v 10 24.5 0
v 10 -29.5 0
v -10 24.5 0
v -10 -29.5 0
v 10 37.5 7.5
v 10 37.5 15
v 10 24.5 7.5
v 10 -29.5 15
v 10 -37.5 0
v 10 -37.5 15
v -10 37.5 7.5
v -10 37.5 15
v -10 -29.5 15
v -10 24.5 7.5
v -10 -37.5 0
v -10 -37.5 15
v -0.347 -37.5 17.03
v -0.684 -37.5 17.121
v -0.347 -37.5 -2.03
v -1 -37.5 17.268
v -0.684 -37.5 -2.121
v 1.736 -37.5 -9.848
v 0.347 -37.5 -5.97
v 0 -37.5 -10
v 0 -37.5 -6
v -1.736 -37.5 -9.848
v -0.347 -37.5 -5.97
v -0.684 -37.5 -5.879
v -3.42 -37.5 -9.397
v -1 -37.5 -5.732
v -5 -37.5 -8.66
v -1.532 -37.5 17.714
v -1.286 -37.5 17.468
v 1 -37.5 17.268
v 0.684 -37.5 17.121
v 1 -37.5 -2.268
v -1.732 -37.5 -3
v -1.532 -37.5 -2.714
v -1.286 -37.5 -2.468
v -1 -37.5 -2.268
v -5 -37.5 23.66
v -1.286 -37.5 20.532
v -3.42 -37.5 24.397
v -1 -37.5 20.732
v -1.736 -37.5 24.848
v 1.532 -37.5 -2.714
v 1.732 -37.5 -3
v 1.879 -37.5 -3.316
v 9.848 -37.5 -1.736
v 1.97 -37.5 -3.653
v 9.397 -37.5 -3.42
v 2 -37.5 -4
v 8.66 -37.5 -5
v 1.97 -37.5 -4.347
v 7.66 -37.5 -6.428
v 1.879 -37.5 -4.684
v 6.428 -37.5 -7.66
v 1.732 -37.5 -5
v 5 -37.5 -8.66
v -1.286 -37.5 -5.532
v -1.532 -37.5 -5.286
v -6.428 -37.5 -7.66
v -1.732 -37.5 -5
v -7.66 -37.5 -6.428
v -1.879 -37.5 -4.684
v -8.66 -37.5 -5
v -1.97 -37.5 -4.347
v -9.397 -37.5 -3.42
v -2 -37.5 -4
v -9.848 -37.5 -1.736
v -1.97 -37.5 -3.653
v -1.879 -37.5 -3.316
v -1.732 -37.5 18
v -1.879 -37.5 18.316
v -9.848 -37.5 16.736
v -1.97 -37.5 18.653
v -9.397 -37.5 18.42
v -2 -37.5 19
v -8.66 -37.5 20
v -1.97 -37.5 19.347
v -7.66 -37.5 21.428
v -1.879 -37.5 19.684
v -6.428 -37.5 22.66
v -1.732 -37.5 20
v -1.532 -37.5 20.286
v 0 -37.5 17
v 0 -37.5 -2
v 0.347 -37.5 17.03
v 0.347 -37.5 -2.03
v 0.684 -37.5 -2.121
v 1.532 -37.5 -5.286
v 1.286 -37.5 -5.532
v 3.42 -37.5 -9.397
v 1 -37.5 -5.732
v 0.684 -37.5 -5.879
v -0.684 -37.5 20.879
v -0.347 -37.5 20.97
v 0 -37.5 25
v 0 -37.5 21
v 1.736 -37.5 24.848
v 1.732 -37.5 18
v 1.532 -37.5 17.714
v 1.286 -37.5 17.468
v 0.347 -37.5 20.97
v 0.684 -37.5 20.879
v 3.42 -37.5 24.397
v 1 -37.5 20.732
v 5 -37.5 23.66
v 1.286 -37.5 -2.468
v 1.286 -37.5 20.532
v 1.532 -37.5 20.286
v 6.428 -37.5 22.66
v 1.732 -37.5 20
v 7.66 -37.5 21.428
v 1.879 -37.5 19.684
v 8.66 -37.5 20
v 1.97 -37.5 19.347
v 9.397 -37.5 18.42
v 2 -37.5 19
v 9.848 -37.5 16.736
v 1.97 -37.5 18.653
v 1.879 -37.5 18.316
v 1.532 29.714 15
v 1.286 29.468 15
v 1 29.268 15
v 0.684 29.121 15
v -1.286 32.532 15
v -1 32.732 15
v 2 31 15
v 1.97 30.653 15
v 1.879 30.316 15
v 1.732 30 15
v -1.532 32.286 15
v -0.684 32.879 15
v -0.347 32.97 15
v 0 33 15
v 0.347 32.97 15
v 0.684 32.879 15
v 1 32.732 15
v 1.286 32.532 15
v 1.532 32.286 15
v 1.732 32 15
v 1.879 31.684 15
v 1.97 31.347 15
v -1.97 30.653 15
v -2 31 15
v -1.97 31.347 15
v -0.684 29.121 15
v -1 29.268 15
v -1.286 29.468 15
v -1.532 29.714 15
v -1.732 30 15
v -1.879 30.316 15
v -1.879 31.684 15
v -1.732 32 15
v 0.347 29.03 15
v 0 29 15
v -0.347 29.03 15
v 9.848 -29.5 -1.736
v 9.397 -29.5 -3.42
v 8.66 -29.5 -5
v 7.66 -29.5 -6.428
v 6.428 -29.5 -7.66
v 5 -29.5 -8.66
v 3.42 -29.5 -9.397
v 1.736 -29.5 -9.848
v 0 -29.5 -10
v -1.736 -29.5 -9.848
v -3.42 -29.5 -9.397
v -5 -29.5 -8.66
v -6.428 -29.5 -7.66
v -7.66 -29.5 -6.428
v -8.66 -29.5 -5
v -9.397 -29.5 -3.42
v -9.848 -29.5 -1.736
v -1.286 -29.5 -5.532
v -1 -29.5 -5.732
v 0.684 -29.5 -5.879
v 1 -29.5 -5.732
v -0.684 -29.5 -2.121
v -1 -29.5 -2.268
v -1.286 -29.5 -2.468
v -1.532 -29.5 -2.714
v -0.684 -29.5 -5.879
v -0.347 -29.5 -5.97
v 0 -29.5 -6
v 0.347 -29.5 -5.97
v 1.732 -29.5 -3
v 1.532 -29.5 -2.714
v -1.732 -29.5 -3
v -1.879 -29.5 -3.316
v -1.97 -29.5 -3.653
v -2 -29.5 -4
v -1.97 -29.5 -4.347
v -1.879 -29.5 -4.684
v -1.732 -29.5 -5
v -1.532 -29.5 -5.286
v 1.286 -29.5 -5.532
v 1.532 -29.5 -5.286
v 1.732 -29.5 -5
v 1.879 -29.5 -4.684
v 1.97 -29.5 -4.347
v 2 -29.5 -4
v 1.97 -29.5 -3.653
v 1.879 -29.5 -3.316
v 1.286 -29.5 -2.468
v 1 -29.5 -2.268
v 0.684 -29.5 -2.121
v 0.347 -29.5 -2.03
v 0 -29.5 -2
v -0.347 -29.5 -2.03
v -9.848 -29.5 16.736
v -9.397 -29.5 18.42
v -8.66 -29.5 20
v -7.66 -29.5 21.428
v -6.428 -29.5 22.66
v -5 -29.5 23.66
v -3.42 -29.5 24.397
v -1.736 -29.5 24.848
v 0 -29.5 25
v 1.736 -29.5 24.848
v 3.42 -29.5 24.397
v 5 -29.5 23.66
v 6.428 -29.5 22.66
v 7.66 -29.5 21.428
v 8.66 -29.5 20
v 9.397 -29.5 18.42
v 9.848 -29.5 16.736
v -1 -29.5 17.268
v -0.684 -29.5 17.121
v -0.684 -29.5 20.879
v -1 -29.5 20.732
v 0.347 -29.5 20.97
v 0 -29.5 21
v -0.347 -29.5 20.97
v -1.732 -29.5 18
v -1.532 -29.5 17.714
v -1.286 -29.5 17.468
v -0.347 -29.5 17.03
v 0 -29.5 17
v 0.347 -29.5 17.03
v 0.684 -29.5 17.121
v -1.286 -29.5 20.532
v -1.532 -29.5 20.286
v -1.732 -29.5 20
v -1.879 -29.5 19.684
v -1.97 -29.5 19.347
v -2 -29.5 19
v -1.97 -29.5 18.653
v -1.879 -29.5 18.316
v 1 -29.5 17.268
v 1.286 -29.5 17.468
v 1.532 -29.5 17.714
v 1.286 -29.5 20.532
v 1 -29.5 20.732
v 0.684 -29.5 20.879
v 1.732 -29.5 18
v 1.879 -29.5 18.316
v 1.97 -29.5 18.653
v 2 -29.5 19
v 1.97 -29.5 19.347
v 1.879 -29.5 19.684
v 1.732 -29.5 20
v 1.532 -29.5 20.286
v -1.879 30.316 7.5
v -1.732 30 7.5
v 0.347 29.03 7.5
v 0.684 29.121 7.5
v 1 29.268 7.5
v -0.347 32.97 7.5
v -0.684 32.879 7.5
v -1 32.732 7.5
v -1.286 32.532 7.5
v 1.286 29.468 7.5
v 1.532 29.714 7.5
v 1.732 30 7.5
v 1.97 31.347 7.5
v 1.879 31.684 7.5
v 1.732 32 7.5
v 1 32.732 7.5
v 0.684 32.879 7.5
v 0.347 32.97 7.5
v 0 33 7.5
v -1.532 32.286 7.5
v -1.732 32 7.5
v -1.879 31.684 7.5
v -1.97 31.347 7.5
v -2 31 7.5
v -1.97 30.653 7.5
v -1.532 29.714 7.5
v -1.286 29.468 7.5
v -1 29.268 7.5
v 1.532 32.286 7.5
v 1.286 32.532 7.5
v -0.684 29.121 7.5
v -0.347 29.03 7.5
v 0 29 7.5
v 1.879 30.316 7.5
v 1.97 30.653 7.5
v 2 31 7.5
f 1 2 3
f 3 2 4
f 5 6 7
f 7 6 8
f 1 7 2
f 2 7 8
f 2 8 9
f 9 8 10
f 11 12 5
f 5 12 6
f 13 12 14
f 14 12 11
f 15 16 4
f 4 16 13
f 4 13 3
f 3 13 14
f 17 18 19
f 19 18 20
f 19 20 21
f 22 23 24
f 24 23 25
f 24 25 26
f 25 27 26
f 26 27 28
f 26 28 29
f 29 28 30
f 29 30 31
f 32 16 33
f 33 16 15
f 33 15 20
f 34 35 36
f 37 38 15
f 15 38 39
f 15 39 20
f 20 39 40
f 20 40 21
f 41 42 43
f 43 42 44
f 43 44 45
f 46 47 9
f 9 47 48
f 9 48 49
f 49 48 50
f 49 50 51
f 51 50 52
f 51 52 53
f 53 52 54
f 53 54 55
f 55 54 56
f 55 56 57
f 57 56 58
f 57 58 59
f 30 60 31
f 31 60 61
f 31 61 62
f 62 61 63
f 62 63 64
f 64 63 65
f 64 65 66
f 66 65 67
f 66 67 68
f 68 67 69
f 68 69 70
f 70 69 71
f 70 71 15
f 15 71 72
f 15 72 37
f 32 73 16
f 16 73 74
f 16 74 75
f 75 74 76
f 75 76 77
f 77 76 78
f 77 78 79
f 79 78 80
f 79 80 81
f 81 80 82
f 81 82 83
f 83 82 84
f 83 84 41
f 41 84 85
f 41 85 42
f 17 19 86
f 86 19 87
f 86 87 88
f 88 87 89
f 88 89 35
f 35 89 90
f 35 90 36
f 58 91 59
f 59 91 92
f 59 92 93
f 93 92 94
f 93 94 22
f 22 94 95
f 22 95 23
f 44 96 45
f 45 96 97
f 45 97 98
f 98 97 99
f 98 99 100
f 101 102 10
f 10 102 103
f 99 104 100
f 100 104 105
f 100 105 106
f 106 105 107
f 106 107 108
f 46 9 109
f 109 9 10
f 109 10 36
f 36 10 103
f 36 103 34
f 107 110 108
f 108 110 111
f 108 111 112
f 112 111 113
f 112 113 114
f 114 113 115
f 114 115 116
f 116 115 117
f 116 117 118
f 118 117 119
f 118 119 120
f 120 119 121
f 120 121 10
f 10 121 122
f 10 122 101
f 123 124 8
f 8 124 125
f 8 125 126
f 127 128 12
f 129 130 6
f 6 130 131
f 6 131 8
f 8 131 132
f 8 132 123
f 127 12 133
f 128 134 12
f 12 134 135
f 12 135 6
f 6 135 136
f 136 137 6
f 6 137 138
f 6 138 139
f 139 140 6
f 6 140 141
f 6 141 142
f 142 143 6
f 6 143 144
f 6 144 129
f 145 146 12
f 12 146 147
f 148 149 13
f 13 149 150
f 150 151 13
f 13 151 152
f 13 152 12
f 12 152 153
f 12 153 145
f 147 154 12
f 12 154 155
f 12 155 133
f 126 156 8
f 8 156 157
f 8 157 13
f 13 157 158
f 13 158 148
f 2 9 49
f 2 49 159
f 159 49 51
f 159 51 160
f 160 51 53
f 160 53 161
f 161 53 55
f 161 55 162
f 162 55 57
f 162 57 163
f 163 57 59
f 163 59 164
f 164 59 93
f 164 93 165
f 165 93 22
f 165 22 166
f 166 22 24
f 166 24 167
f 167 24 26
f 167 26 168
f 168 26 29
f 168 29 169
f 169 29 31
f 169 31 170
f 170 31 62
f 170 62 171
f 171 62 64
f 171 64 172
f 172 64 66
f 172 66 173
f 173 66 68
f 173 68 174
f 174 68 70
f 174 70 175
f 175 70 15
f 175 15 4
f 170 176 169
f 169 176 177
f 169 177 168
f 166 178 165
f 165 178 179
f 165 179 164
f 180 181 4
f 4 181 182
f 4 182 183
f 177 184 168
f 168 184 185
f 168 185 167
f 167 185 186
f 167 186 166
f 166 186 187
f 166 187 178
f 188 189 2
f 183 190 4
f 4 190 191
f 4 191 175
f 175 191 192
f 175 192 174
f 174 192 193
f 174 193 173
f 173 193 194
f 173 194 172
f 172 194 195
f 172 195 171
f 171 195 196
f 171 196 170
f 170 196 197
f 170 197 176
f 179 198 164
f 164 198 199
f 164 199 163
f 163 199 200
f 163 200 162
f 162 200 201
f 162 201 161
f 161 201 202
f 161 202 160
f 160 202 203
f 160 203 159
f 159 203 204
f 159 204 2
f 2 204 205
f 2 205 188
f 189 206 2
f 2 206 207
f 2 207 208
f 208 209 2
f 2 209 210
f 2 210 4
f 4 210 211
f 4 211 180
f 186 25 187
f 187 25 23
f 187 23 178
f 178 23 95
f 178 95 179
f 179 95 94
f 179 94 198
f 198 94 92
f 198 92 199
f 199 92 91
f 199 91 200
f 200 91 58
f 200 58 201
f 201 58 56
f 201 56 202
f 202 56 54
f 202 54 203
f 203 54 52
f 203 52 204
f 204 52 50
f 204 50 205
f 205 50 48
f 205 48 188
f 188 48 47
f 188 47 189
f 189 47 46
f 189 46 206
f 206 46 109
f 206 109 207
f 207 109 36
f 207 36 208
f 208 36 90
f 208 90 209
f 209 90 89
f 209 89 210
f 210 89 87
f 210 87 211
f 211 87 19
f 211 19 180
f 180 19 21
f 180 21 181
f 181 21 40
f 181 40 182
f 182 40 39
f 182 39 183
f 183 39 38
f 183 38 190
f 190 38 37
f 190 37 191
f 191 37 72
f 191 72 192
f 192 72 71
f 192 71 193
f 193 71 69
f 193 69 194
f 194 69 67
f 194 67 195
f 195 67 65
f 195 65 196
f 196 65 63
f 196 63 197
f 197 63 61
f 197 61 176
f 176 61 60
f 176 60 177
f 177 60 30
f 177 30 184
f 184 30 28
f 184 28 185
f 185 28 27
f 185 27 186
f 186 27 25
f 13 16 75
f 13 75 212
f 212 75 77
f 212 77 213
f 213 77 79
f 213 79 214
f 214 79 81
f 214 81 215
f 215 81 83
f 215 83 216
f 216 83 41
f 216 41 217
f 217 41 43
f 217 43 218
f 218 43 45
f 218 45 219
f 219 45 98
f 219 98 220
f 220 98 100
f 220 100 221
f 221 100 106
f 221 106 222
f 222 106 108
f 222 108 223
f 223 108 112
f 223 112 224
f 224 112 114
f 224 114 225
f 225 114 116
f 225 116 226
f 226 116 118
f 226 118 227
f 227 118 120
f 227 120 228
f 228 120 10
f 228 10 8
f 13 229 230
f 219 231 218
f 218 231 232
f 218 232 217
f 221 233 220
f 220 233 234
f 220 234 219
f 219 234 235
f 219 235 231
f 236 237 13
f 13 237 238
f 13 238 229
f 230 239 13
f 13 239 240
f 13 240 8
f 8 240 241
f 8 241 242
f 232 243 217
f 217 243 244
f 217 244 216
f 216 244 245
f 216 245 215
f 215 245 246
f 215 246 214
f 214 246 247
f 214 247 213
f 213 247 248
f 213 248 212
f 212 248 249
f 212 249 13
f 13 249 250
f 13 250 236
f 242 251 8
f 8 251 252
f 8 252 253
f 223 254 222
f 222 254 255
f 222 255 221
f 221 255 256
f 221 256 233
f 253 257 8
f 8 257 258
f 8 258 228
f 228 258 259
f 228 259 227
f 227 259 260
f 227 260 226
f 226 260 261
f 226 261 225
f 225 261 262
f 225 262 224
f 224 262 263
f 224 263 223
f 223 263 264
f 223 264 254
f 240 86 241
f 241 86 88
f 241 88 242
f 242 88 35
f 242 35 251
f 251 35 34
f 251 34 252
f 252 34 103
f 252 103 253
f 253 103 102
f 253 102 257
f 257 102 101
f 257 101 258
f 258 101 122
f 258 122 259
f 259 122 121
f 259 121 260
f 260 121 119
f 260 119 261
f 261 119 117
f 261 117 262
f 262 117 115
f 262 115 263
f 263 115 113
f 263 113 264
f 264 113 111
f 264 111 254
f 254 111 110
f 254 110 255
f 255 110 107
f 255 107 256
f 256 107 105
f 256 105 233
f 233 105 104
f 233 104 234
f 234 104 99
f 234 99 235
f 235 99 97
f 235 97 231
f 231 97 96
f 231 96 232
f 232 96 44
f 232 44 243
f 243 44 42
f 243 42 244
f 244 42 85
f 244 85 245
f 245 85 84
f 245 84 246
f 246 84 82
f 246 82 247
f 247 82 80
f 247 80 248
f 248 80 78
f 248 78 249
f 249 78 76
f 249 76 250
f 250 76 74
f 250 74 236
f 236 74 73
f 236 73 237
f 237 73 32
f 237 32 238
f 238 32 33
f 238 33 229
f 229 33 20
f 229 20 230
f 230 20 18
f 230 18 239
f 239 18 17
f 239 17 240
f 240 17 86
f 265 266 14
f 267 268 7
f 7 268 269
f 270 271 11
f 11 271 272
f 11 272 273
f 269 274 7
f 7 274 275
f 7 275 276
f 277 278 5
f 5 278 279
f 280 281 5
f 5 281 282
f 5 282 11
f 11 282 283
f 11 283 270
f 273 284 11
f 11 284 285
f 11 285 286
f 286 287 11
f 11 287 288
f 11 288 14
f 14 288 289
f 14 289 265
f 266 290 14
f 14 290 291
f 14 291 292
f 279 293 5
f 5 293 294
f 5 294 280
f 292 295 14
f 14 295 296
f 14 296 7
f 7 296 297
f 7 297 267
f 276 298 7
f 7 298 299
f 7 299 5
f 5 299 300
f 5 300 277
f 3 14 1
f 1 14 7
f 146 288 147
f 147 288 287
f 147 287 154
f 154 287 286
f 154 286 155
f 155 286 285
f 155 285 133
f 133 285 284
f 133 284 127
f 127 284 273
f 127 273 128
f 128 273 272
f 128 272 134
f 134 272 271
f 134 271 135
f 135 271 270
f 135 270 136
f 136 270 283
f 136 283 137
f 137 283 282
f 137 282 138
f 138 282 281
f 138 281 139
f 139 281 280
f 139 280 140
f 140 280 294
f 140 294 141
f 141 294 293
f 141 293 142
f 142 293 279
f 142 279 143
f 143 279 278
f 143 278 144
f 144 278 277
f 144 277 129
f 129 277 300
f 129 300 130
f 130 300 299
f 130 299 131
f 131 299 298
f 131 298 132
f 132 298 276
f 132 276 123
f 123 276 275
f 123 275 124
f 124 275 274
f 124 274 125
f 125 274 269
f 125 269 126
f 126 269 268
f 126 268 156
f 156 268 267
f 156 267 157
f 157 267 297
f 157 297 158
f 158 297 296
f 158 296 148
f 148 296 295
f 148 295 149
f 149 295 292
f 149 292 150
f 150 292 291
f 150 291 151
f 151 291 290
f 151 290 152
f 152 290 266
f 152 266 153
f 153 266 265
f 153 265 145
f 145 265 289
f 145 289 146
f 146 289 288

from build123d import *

# Parameters (mm, degrees)
SKETCH1_W           = 20
SKETCH1_H           = 75
BOSS_EXTRUDE1_DEPTH = 15
SKETCH2_R           = 2
BOSS_EXTRUDE2_DEPTH = 8
SKETCH3_W           = 20
SKETCH3_H           = 7.5
CUT_EXTRUDE1_DEPTH  = 13
SKETCH4_R           = 2
CUT_EXTRUDE2_DEPTH  = 13


with BuildPart() as part:
    # Sketch1 → Boss-Extrude1 (new body)
    with BuildSketch(Plane.XY):
        Rectangle(SKETCH1_W, SKETCH1_H)
    extrude(amount=BOSS_EXTRUDE1_DEPTH)

    # Sketch2 → Boss-Extrude2 (add)
    # profile 1 of 2: a face of its own
    with BuildSketch(Plane.XZ.offset(37.5)):
        with BuildLine():
            Line((-10, 0), (10, 0))
            ThreePointArc((10, 0), (0, -10), (-10, 0))
        make_face()
        with Locations(Location((0, -4, 0), (0, 0, 270))):
            Circle(SKETCH2_R, mode=Mode.SUBTRACT)
    # profile 2 of 2: a face of its own
    with BuildSketch(Plane.XZ.offset(37.5)):
        with BuildLine():
            Line((-10, 15), (10, 15))
            ThreePointArc((10, 15), (0, 25), (-10, 15))
        make_face()
        with Locations(Location((0, 19, 0), (0, 0, 90))):
            Circle(SKETCH2_R, mode=Mode.SUBTRACT)
    extrude(amount=-BOSS_EXTRUDE2_DEPTH)

    # Sketch3 → Cut-Extrude1 (cut)
    with BuildSketch(Plane(origin=(0, 37.5, 0), x_dir=(1, 0, 0), z_dir=(0, 1, 0))):
        with Locations((0, -3.75)):
            Rectangle(SKETCH3_W, SKETCH3_H)
    extrude(amount=-CUT_EXTRUDE1_DEPTH, mode=Mode.SUBTRACT)

    # Sketch4 → Cut-Extrude2 (cut)
    with BuildSketch(Plane(origin=(0, 0, 7.5), x_dir=(-1, 0, 0), z_dir=(0, 0, -1))):
        with Locations((0, 31)):
            Circle(SKETCH4_R)
    extrude(amount=-CUT_EXTRUDE2_DEPTH, mode=Mode.SUBTRACT)


solid = part.part
